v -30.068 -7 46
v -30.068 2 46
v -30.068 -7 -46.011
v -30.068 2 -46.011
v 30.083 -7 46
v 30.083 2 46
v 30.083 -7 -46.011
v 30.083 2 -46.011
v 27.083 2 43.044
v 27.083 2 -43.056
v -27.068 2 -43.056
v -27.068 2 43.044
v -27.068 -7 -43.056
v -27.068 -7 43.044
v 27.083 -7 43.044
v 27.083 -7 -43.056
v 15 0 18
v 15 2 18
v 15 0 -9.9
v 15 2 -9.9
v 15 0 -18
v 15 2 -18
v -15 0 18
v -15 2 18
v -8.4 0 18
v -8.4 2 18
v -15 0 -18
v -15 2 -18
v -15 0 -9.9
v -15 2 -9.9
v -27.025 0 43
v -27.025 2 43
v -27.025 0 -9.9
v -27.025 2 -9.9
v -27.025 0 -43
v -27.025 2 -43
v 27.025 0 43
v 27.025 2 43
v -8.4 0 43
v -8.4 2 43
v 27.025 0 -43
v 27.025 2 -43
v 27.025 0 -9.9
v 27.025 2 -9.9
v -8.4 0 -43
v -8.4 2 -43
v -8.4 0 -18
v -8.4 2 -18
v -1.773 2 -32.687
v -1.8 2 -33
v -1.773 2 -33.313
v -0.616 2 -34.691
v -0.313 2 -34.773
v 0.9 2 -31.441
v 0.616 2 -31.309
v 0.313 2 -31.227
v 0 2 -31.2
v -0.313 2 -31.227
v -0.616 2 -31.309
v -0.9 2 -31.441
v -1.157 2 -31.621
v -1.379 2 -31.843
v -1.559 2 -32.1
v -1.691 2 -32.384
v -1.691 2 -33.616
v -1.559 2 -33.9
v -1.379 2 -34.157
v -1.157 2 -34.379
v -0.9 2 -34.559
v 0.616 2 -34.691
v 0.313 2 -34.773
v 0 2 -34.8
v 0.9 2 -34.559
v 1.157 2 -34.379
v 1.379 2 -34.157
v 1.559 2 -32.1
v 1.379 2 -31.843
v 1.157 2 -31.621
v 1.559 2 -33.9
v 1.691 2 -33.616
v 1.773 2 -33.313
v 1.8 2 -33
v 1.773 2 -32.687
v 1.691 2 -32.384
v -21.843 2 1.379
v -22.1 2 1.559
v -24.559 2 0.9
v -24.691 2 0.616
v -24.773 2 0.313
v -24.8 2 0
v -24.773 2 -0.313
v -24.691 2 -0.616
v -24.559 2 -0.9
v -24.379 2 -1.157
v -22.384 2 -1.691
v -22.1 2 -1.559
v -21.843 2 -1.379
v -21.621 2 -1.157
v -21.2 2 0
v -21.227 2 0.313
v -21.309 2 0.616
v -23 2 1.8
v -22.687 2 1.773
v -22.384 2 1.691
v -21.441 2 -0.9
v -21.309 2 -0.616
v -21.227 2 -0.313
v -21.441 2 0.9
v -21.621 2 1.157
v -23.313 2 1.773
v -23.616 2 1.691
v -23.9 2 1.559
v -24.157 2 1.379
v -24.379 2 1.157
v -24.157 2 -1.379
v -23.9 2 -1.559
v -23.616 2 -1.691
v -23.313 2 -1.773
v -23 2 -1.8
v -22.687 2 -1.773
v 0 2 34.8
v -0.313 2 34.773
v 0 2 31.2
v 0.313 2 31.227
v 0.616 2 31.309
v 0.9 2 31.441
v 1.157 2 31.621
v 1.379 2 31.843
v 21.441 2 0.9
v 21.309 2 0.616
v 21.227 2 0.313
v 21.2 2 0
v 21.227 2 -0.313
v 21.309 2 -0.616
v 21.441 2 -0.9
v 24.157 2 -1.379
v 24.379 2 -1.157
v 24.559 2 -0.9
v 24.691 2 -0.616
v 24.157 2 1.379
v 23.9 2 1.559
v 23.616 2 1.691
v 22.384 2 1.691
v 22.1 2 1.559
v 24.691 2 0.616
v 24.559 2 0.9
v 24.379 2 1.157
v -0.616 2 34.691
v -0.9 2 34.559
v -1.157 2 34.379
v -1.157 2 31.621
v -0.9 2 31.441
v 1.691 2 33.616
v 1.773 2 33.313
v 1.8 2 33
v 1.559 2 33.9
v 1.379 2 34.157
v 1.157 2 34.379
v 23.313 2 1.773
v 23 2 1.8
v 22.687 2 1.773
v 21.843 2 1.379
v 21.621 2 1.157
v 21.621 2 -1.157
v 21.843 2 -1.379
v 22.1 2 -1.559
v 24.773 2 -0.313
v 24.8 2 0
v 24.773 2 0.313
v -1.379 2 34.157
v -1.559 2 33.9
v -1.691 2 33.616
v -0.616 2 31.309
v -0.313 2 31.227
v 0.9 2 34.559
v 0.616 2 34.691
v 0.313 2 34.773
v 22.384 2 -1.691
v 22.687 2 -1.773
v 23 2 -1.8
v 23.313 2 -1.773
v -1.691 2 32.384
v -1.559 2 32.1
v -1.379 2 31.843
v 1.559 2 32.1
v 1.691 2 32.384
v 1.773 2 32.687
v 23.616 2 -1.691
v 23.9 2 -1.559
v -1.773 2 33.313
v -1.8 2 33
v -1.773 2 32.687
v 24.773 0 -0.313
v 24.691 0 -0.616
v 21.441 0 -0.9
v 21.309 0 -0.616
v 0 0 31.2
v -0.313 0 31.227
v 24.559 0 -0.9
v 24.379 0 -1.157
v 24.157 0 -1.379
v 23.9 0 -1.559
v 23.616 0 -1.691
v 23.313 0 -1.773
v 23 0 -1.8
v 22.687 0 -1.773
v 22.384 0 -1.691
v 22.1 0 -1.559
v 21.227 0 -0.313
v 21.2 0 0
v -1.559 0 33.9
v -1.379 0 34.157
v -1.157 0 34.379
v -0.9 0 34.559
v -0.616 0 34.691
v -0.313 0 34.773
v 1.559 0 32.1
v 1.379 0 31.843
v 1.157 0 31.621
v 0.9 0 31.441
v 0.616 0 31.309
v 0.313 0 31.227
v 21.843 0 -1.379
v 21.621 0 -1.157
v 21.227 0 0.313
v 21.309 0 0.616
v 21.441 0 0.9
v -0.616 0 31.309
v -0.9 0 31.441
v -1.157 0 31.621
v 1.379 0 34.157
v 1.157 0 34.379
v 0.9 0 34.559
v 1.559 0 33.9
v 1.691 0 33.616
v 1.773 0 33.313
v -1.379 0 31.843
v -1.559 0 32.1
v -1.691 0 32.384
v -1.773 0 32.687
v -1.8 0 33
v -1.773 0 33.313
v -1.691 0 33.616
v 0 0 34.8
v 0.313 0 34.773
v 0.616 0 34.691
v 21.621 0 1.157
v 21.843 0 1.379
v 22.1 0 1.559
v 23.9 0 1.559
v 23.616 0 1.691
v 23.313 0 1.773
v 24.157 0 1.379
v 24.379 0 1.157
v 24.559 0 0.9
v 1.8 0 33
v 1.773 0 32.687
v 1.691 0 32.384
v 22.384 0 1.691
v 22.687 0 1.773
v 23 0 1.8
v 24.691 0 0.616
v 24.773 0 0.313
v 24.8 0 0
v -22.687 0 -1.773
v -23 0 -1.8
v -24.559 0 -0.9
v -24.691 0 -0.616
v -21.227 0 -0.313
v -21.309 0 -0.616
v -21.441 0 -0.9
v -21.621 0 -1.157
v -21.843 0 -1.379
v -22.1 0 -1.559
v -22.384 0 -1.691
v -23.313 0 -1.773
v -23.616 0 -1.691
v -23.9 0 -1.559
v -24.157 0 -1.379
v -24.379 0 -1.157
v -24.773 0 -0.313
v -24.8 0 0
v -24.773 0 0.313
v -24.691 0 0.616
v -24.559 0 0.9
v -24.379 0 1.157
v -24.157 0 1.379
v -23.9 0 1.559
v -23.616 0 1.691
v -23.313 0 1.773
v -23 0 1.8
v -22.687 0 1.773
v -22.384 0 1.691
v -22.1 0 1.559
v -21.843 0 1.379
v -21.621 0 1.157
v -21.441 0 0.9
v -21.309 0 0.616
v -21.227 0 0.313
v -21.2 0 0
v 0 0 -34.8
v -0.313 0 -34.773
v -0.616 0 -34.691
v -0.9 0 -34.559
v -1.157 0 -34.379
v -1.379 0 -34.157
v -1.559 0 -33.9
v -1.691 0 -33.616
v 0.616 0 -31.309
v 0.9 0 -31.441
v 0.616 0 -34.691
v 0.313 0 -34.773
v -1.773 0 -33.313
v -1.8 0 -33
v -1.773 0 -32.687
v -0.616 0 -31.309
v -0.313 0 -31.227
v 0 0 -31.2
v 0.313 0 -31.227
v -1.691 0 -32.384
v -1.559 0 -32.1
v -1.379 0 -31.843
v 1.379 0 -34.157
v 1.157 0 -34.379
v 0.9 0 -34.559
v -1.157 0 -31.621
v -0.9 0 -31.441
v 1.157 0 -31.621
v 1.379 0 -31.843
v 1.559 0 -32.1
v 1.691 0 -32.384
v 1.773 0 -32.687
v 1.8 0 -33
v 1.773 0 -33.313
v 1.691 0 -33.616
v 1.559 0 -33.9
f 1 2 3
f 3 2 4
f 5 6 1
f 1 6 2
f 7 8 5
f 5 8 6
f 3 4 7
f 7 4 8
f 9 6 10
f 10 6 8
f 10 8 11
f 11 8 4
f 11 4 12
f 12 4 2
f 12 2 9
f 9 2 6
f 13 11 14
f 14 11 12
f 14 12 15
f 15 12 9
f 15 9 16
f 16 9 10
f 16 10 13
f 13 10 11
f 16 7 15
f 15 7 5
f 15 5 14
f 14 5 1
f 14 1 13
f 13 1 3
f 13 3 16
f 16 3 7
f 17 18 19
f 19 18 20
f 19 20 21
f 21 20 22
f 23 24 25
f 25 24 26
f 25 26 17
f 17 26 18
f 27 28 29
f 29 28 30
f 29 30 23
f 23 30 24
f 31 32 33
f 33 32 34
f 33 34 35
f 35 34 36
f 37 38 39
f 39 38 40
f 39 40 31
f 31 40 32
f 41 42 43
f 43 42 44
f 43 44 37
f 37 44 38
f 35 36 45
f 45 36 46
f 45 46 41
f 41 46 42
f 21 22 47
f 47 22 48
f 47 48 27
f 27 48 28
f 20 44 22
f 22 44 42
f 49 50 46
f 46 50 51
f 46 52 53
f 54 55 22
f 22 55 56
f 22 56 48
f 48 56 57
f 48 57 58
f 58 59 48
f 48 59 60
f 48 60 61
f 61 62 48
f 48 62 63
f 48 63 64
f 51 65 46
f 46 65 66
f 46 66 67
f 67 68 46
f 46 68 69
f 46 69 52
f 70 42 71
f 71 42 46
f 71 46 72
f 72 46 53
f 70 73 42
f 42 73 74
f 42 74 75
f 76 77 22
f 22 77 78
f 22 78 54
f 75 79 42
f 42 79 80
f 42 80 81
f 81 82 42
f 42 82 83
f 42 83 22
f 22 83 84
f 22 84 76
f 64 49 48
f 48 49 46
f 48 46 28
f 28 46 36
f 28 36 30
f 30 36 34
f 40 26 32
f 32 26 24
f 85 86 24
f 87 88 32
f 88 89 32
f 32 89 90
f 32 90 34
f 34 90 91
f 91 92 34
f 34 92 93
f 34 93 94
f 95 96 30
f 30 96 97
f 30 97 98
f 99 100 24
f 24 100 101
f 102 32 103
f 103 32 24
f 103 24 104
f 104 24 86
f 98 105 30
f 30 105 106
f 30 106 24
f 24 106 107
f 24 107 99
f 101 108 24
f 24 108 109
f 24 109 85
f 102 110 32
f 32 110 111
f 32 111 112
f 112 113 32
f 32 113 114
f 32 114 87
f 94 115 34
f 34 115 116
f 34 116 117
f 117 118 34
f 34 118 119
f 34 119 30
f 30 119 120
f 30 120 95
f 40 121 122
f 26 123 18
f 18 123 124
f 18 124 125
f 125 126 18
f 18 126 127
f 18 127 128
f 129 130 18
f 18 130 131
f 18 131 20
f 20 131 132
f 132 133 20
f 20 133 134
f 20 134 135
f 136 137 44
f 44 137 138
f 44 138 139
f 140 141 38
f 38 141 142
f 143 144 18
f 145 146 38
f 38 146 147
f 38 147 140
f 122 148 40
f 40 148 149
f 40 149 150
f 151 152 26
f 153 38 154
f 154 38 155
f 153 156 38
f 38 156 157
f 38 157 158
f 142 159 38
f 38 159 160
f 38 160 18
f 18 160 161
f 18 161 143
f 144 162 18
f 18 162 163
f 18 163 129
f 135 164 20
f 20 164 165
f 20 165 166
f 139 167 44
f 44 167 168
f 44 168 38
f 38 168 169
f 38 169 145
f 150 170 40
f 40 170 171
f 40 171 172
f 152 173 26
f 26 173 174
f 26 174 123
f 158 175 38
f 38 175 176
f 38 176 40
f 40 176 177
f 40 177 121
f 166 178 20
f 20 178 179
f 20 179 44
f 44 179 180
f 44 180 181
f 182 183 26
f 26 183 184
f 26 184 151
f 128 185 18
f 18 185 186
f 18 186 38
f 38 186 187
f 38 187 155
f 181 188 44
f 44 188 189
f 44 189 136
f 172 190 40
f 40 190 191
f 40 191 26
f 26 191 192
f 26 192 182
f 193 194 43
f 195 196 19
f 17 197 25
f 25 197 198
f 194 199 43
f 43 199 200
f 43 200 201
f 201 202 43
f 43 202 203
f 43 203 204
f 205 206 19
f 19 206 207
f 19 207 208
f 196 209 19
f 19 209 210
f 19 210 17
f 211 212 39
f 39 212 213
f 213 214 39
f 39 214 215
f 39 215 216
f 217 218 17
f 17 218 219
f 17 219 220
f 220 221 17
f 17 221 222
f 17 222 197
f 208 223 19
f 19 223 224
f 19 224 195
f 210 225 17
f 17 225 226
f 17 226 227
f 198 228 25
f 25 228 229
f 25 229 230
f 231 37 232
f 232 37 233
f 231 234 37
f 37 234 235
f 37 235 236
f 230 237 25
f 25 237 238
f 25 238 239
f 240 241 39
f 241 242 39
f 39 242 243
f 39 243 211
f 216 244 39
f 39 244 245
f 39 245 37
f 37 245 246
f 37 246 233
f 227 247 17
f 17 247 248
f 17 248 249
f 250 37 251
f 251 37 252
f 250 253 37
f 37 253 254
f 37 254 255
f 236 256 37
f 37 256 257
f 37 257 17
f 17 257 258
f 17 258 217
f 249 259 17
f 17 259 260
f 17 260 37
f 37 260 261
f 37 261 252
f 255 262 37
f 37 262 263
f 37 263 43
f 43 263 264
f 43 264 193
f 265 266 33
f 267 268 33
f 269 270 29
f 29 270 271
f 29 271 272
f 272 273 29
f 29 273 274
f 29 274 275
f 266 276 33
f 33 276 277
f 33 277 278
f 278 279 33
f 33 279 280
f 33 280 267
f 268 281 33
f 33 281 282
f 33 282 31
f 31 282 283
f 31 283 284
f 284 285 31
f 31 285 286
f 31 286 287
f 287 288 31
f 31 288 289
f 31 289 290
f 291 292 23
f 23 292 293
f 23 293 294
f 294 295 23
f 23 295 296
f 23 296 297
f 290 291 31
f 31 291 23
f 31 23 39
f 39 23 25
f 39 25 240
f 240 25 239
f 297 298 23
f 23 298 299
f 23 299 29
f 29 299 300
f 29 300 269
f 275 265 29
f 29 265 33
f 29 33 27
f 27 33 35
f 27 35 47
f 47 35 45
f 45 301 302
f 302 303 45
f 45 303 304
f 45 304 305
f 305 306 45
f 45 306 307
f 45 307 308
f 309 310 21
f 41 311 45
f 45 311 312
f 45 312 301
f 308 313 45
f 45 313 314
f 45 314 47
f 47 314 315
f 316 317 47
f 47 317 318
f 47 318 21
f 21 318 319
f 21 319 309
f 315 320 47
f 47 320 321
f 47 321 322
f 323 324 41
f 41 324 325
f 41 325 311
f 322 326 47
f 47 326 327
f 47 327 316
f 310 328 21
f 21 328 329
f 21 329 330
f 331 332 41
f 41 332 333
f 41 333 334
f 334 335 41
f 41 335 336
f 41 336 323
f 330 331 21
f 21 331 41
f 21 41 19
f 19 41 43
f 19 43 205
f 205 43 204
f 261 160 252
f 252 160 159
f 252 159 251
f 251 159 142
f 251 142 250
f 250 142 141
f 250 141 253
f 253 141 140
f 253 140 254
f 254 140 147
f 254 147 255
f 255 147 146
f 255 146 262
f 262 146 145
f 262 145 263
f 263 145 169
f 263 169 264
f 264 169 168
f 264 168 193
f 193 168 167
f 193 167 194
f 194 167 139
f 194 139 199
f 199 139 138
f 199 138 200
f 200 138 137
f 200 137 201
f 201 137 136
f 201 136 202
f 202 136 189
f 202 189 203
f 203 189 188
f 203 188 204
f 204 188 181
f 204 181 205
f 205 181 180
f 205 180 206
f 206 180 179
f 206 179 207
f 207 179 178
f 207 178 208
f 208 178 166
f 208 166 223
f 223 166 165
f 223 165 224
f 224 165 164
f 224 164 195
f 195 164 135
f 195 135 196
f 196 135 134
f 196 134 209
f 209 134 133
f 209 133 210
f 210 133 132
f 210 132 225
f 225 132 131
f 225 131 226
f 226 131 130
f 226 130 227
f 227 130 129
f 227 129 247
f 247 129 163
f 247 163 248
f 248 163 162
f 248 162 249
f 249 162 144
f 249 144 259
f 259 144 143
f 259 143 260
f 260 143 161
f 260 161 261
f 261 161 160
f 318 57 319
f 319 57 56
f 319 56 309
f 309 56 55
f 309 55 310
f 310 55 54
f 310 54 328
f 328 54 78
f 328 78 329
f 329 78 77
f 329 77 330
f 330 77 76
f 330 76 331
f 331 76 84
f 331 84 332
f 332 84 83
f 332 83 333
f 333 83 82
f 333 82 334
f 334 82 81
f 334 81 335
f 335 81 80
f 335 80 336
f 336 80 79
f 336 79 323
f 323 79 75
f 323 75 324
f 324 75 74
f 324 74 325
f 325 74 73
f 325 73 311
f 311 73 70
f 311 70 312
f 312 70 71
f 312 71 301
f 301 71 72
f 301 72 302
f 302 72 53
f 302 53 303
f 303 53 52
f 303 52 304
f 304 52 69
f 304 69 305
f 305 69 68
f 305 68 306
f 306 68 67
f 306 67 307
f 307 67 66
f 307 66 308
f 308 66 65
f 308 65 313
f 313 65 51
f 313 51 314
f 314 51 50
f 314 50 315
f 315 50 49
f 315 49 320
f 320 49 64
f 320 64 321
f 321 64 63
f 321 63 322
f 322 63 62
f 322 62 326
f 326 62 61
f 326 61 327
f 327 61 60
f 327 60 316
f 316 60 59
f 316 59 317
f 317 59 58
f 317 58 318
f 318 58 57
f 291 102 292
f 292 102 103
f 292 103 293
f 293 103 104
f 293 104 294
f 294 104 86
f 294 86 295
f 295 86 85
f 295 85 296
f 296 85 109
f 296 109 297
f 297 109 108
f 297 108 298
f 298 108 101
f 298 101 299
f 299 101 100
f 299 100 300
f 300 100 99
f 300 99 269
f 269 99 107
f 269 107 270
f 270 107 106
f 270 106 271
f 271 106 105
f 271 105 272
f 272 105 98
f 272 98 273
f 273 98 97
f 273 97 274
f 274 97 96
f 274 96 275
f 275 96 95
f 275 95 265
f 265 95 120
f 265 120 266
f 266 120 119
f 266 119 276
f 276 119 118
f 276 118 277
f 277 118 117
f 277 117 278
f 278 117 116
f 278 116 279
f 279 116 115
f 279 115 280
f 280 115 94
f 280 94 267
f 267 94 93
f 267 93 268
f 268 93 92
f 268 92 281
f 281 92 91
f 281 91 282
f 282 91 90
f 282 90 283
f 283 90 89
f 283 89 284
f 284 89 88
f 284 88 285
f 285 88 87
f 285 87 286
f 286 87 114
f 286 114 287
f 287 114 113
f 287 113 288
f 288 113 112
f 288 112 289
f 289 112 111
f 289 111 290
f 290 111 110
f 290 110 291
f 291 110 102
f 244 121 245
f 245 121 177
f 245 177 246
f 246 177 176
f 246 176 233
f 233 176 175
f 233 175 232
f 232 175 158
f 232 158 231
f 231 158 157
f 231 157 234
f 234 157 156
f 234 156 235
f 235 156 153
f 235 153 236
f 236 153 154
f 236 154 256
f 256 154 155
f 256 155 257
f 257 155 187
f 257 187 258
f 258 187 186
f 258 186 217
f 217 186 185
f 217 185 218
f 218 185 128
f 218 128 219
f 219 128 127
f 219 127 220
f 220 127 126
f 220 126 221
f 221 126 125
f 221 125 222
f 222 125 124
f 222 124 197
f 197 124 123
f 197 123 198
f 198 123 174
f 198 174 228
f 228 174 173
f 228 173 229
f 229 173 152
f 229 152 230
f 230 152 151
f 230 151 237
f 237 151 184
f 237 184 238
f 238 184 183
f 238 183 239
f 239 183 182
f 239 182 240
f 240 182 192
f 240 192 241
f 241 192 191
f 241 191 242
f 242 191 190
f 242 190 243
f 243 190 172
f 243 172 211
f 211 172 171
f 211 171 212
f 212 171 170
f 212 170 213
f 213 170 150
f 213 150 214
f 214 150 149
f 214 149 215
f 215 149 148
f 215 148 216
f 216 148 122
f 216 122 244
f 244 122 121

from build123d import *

# Parameters (mm, degrees)
SKETCH1_W                = 54.05
SKETCH1_H                = 86
SKETCH1_W_2              = 30
SKETCH1_H_2              = 36
BOSS_EXTRUDE1_DEPTH      = 2
BOSS_EXTRUDE2_DEPTH      = 7
BOSS_EXTRUDE2_DEPTH_BACK = 2
SKETCH2_W                = 60.15045032
SKETCH2_H                = 92.011080655
SKETCH2_W_2              = 54.15045032
SKETCH2_H_2              = 86.1
SKETCH3_R                = 1.8
CUT_EXTRUDE1_DEPTH       = 2


with BuildPart() as part:
    # Sketch1 → Boss-Extrude1 (new body)
    with BuildSketch(Plane(origin=(0, 0, 0), x_dir=(1, 0, 0), z_dir=(0, 1, 0))):
        Rectangle(SKETCH1_W, SKETCH1_H)
        Rectangle(SKETCH1_W_2, SKETCH1_H_2, mode=Mode.SUBTRACT)
    extrude(amount=BOSS_EXTRUDE1_DEPTH)

    # Sketch3 → Cut-Extrude1 (cut)
    with BuildSketch(Plane(origin=(0, 2, 0), x_dir=(1, 0, 0), z_dir=(0, 1, 0))):
        with Locations(Location((0, -33, 0), (0, 0, 270))):
            Circle(SKETCH3_R)
        with Locations(Location((-23, 0, 0), (0, 0, 270))):
            Circle(SKETCH3_R)
        with Locations(Location((0, 33, 0), (0, 0, 90))):
            Circle(SKETCH3_R)
        with Locations(Location((23, 0, 0), (0, 0, 90))):
            Circle(SKETCH3_R)
    extrude(amount=-CUT_EXTRUDE1_DEPTH, mode=Mode.SUBTRACT)


with BuildPart() as body_2:
    # Sketch2 → Boss-Extrude2 (new, two sides: drawn at the far end of the back side and taken through both)
    with BuildSketch(Plane.XZ.offset(-BOSS_EXTRUDE2_DEPTH_BACK)):
        with Locations((0.007495436, -0.005540328)):
            Rectangle(SKETCH2_W, SKETCH2_H)
        with Locations((0.007495436, -0.005540327)):
            Rectangle(SKETCH2_W_2, SKETCH2_H_2, mode=Mode.SUBTRACT)
    extrude(amount=BOSS_EXTRUDE2_DEPTH + BOSS_EXTRUDE2_DEPTH_BACK)


solid = Compound([part.part, body_2.part])
